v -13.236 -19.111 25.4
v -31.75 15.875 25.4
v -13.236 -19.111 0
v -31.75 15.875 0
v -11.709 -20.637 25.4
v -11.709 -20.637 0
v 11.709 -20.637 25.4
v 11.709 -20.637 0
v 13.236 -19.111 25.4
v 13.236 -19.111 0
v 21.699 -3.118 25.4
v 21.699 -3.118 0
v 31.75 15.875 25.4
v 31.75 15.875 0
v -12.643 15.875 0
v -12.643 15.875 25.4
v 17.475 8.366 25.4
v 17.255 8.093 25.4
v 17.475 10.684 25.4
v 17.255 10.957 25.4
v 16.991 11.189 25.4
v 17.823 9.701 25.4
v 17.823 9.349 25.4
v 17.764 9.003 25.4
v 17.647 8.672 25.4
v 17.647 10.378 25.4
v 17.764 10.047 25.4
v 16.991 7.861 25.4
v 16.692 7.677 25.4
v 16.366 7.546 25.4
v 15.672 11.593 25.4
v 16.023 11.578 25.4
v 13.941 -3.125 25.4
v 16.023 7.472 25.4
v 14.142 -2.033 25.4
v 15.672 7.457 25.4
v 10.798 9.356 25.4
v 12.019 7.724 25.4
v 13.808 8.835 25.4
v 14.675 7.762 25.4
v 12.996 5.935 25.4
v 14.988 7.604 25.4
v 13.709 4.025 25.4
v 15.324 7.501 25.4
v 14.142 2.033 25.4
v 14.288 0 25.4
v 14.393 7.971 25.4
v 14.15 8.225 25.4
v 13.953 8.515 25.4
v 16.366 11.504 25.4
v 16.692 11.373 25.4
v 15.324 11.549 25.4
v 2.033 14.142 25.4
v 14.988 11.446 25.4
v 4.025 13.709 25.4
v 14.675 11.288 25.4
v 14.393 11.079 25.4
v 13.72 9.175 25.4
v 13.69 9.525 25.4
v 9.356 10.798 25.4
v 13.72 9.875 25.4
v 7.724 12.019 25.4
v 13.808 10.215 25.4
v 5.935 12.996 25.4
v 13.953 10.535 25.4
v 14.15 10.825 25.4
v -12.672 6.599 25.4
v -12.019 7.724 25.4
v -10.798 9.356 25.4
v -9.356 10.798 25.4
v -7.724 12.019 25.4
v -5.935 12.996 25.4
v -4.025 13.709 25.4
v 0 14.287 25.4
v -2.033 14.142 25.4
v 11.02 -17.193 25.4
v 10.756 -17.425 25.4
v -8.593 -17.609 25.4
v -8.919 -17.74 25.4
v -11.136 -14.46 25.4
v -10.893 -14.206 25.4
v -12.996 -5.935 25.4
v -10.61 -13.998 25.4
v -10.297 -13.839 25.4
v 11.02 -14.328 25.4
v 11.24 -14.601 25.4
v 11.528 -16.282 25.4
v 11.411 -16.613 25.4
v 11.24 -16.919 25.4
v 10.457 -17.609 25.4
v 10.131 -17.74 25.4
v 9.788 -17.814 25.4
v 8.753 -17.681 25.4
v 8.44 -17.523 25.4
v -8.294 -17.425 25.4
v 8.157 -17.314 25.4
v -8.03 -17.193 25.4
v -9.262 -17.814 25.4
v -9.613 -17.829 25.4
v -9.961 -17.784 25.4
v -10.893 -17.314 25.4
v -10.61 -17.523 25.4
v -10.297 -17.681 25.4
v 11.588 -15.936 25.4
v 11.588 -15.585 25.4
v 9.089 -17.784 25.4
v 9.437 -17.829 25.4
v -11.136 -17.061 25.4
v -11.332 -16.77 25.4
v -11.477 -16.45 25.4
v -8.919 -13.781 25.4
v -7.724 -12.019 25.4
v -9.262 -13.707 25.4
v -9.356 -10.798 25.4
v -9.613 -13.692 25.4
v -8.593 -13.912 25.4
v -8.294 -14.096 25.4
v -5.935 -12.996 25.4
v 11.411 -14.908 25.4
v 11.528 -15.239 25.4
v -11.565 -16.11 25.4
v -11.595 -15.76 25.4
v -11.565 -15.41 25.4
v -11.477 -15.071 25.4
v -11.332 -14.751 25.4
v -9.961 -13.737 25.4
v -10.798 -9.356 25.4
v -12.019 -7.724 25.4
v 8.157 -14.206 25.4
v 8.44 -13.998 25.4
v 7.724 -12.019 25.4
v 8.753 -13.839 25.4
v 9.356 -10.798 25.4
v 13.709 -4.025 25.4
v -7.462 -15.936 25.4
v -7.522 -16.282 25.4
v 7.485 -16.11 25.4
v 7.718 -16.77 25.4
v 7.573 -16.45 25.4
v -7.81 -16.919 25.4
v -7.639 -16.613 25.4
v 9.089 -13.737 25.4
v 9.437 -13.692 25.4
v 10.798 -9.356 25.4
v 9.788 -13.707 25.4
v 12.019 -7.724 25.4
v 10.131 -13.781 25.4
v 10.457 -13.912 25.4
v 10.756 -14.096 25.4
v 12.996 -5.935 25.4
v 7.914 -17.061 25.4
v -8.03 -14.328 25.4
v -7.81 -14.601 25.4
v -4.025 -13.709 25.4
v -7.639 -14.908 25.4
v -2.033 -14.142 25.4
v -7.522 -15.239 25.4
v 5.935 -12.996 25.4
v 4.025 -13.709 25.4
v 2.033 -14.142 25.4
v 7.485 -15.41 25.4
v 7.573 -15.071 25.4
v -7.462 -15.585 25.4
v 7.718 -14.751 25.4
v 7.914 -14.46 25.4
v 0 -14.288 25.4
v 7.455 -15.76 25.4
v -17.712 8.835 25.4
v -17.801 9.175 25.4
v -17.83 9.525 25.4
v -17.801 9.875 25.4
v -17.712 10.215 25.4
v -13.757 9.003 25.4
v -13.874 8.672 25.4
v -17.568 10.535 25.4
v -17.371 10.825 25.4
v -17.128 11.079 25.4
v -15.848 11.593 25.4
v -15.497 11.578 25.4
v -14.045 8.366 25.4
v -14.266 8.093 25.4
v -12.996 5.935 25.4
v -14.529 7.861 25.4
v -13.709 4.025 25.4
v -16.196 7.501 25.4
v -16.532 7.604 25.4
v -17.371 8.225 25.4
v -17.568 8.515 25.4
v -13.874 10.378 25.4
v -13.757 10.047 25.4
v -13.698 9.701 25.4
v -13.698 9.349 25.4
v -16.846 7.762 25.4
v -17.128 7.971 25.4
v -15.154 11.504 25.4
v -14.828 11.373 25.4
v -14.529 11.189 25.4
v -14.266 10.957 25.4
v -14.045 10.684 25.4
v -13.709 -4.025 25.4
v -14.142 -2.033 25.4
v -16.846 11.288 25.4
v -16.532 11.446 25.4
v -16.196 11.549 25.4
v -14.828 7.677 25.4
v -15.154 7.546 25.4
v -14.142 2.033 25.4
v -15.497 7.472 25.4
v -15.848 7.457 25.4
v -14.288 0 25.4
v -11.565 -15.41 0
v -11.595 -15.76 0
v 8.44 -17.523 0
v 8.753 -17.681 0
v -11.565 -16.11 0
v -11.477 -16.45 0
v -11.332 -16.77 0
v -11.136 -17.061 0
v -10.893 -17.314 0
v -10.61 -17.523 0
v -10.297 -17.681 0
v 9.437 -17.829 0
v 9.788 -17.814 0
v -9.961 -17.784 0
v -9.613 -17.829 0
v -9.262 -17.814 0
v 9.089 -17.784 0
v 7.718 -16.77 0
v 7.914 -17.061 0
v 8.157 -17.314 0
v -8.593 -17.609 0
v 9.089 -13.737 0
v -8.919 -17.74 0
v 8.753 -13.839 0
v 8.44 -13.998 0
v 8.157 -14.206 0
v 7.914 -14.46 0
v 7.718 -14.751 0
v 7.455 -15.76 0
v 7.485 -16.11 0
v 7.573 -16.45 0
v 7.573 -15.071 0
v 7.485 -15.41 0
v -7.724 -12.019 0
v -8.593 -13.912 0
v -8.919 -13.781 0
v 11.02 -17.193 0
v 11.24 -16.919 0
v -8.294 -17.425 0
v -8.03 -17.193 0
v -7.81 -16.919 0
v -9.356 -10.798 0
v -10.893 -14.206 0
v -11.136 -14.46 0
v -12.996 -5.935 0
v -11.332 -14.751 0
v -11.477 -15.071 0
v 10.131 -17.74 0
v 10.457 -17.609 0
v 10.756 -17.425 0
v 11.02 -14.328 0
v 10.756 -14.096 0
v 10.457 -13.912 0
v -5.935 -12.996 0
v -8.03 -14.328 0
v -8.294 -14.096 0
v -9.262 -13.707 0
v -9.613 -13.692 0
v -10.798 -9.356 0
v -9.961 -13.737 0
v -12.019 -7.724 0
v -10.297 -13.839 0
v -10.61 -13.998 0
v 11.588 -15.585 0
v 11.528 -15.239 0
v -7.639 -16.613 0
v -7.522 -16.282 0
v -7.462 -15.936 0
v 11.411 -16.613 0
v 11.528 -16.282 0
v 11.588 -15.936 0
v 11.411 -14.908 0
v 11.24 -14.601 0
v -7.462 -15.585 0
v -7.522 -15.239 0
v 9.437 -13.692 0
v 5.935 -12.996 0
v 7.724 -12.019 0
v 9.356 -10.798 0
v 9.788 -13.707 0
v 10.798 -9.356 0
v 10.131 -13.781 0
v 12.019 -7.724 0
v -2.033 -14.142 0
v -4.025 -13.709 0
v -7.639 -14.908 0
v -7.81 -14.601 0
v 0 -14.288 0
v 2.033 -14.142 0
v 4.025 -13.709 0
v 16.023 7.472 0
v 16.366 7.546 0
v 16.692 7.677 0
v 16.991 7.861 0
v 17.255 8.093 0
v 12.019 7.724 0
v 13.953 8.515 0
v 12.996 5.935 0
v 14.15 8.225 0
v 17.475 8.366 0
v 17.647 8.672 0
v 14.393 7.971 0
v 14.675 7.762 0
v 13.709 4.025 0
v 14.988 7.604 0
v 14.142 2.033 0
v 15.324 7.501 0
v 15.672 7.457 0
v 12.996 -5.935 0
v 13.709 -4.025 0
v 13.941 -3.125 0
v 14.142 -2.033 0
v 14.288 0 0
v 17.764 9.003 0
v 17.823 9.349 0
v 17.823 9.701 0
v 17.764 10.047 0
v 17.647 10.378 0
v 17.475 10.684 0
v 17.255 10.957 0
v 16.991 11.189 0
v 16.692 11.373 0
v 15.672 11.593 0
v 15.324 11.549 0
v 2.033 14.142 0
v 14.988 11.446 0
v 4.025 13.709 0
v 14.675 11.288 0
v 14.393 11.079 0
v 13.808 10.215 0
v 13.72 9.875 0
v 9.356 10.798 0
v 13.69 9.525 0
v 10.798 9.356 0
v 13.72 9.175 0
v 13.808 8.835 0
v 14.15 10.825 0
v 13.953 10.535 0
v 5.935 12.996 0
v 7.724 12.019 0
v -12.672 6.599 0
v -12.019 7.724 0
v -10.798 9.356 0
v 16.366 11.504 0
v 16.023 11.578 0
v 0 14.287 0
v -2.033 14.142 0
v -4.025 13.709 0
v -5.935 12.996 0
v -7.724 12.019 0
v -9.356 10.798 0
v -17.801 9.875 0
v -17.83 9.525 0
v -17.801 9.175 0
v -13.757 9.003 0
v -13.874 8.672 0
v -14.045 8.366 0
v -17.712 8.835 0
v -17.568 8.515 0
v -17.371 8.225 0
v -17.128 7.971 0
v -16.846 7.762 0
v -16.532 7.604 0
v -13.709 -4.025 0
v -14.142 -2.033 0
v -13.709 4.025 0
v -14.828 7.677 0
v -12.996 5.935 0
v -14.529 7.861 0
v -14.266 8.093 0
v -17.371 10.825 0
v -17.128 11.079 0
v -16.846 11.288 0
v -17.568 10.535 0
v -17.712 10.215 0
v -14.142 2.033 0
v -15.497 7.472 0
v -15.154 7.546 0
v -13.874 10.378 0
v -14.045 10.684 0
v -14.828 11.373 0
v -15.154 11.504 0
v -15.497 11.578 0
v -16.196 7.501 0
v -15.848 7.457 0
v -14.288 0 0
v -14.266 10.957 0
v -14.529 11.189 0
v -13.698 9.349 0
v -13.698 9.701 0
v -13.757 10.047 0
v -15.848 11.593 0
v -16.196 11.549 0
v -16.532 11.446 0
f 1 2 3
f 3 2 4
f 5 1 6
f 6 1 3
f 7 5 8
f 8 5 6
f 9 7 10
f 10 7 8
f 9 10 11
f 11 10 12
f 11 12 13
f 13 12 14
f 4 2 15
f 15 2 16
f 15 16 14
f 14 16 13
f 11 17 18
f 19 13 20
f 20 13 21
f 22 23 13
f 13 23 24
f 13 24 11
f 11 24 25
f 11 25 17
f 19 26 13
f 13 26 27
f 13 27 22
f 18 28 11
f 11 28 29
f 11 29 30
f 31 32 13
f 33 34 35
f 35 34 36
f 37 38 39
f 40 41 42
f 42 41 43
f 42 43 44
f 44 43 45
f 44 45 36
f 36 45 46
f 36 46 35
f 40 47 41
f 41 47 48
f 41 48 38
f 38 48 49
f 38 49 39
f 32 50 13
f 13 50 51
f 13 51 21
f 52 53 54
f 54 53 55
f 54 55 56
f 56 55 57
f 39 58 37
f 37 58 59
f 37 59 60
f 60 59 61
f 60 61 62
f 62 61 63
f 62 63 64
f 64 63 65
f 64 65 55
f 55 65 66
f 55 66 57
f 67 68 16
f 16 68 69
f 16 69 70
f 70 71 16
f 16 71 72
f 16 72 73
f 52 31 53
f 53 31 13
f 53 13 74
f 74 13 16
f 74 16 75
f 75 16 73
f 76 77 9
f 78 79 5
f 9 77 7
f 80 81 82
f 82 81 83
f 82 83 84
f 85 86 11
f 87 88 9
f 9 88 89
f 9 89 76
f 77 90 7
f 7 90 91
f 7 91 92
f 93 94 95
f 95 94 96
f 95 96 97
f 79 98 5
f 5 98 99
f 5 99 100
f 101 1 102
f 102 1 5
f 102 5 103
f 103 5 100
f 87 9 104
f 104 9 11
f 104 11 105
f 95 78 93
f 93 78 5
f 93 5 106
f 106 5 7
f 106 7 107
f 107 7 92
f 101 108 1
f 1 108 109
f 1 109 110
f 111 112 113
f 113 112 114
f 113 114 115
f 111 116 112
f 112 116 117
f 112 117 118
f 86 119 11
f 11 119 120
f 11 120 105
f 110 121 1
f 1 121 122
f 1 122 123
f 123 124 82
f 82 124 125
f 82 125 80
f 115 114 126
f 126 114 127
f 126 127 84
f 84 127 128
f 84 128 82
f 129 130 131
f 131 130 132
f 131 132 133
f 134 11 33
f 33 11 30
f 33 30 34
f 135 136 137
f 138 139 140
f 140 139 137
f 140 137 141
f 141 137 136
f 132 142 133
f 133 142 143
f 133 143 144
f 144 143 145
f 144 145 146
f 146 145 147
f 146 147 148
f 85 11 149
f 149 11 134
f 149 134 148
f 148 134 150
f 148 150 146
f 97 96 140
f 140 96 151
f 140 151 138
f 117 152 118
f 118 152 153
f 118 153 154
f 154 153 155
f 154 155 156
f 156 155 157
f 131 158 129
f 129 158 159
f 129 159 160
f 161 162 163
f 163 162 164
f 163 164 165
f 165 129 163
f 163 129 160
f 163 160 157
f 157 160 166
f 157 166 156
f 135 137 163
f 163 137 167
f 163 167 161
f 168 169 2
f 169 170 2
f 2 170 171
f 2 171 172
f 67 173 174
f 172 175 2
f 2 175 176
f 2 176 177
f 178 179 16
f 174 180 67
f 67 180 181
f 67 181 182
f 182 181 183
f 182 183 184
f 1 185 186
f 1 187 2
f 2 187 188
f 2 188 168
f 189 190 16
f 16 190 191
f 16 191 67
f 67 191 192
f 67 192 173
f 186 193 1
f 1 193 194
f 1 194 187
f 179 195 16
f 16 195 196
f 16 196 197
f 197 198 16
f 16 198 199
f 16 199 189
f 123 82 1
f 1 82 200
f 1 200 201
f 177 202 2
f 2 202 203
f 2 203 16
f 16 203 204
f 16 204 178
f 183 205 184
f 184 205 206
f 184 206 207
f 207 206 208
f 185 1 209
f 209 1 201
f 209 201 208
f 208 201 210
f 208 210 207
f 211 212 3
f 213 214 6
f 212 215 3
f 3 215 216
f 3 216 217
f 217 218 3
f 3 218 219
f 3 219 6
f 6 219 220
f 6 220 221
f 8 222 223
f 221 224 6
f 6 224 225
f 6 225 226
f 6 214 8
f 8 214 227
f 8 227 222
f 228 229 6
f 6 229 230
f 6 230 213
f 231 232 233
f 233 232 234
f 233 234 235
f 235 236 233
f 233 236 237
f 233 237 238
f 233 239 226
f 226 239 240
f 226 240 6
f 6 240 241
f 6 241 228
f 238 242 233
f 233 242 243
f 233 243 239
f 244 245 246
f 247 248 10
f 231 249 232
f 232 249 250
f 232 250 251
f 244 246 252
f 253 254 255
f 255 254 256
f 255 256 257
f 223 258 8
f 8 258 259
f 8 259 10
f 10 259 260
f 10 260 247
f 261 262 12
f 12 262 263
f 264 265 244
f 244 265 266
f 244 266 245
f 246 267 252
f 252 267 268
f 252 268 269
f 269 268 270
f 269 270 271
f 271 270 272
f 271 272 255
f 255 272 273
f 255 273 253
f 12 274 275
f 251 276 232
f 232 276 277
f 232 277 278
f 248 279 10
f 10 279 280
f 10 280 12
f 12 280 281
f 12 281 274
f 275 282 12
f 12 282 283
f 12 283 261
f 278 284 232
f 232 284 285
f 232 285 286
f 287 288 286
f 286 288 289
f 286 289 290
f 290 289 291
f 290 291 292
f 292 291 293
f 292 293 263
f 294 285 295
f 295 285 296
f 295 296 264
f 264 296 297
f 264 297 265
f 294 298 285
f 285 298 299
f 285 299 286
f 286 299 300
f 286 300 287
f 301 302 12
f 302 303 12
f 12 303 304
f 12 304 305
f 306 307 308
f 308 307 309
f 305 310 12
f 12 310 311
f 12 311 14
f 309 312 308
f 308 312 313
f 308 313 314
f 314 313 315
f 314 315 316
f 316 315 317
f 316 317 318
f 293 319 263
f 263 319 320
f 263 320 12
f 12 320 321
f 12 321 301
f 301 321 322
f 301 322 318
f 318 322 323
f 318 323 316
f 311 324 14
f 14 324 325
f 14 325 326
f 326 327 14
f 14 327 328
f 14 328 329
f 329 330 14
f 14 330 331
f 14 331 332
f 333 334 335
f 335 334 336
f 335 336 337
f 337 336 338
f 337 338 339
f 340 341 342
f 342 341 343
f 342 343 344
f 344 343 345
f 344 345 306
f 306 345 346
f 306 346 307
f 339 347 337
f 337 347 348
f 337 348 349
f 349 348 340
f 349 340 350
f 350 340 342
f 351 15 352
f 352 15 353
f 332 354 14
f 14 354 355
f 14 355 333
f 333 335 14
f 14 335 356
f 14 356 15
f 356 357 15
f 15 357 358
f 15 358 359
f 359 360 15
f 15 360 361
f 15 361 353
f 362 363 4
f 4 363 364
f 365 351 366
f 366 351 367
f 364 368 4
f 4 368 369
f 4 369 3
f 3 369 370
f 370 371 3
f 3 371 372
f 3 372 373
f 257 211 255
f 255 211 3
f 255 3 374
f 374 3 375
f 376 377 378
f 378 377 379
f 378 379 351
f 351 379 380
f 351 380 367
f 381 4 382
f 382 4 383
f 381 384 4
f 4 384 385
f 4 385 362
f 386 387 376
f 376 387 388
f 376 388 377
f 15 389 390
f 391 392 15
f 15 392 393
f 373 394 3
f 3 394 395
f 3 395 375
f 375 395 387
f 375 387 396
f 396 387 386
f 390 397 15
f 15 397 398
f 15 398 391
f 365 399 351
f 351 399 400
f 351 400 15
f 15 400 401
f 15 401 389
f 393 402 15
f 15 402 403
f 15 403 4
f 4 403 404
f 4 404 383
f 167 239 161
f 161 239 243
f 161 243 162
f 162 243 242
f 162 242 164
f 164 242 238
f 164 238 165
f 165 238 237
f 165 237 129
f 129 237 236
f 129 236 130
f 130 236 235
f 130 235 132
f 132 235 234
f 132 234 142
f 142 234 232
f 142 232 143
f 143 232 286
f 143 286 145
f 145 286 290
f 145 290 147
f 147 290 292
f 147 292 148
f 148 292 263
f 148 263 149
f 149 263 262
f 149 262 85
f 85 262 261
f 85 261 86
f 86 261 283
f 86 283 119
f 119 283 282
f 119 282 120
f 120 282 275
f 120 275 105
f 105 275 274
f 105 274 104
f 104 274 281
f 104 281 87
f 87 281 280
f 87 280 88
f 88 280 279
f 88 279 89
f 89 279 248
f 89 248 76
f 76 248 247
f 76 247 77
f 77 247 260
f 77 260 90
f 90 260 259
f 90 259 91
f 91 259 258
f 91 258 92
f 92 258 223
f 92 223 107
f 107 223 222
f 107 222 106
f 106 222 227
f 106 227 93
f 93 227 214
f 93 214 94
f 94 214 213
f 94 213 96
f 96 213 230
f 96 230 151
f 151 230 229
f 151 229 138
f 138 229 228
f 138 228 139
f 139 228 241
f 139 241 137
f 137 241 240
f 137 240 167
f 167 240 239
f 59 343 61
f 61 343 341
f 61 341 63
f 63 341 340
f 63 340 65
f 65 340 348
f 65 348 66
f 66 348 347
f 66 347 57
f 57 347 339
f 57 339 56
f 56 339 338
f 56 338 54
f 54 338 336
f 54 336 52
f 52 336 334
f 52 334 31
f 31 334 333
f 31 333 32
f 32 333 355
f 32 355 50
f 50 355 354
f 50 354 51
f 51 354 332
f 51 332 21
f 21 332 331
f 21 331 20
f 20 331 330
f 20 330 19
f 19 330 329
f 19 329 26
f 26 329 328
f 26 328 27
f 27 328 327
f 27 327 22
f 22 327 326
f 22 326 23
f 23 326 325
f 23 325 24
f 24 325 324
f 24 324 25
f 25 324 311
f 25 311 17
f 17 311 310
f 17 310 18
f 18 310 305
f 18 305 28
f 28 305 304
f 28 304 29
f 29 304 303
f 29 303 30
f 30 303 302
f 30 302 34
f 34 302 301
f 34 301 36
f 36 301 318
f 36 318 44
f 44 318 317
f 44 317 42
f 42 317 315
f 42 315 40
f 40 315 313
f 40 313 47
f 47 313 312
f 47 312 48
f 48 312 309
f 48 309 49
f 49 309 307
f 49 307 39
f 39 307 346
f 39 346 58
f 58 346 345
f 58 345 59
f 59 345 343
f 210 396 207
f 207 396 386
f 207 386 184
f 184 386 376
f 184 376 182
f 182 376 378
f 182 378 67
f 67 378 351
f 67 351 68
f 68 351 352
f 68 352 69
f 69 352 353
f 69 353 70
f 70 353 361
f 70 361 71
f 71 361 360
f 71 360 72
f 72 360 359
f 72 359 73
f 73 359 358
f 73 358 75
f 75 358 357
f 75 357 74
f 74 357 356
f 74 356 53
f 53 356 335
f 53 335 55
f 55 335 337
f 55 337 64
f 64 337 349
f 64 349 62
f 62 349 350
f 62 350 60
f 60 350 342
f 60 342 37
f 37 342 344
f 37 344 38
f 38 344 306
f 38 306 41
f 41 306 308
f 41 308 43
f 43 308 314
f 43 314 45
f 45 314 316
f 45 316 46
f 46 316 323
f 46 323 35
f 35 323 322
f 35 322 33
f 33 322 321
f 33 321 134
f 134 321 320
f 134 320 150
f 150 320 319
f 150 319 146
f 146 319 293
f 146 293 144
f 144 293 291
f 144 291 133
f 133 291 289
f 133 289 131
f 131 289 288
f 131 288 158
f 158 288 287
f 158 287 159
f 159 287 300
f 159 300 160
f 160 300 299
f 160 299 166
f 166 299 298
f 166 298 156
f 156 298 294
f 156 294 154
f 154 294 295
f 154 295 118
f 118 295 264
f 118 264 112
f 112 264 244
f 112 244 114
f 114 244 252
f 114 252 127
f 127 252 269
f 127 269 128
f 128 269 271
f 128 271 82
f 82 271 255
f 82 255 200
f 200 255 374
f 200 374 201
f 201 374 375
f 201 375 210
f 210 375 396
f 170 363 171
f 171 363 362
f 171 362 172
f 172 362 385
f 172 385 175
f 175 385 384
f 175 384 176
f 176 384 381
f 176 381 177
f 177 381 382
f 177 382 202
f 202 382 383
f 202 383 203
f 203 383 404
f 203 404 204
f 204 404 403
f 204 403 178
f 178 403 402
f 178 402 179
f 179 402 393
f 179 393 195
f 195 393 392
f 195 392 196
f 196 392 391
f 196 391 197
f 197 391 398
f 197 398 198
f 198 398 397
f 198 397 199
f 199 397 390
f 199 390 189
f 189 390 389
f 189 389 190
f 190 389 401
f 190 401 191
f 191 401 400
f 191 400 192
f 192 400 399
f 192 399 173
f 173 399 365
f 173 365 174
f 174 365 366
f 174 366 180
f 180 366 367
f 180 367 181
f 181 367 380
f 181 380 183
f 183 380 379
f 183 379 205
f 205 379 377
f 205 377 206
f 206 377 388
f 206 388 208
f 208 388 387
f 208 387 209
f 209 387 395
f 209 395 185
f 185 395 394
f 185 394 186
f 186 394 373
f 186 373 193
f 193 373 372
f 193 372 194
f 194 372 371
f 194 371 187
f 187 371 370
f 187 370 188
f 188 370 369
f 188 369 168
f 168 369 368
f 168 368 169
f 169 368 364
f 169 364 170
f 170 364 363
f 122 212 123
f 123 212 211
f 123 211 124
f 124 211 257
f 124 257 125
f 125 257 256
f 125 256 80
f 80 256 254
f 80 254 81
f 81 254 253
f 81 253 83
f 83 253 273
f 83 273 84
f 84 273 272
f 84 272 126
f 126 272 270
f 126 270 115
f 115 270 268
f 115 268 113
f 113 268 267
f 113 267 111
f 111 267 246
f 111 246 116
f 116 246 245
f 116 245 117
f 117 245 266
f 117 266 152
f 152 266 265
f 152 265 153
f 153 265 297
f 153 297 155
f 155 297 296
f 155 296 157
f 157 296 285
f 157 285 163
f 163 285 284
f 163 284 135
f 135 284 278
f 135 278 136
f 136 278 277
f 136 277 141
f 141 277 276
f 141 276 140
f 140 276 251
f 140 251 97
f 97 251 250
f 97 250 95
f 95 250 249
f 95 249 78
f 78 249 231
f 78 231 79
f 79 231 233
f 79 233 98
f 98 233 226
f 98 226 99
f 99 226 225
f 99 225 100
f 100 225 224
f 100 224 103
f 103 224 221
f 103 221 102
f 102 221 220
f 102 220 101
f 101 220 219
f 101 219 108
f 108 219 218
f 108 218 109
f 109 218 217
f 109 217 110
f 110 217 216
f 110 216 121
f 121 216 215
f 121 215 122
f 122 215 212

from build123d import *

# Parameters (mm, degrees)
BOSS_EXTRUDE1_DEPTH = 25.4
CUT_EXTRUDE1_DEPTH  = 46.597466007


with BuildPart() as part:
    # Sketch1 → Boss-Extrude1 (new body)
    with BuildSketch(Plane.XY):
        Polygon((-31.75, 15.875), (31.75, 15.875), (13.235753401, -19.110856459), (11.70910986, -20.6375), (-11.70910986, -20.6375), (-13.235753401, -19.110856459), align=None)
    extrude(amount=BOSS_EXTRUDE1_DEPTH)

    # Sketch2 → Cut-Extrude1 (cut, through all)
    with BuildSketch(Plane(origin=(0, 0, 0), x_dir=(-1, 0, 0), z_dir=(0, 0, -1))):
        with BuildLine():
            ThreePointArc((-7.4549, -15.76028553), (-9.525, -13.69018553), (-11.5951, -15.76028553))
            ThreePointArc((-11.5951, -15.76028553), (-9.525, -17.83038553), (-7.4549, -15.76028553))
        make_face()
        with BuildLine():
            ThreePointArc((11.5951, -15.76028553), (9.525, -13.69018553), (7.4549, -15.76028553))
            ThreePointArc((7.4549, -15.76028553), (9.525, -17.83038553), (11.5951, -15.76028553))
        make_face()
        with BuildLine():
            ThreePointArc((17.83038553, 9.525), (15.76028553, 11.5951), (13.69018553, 9.525))
            ThreePointArc((13.69018553, 9.525), (15.76028553, 7.4549), (17.83038553, 9.525))
        make_face()
        with BuildLine():
            ThreePointArc((-13.69018553, 9.525), (-15.76028553, 11.5951), (-17.83038553, 9.525))
            ThreePointArc((-17.83038553, 9.525), (-15.76028553, 7.4549), (-13.69018553, 9.525))
        make_face()
        with BuildLine():
            ThreePointArc((-14.2875, 0), (0, -14.2875), (14.2875, 0))
            ThreePointArc((14.2875, 0), (0, 14.2875), (-14.2875, 0))
        make_face()
    extrude(amount=-CUT_EXTRUDE1_DEPTH, mode=Mode.SUBTRACT)


solid = part.part
